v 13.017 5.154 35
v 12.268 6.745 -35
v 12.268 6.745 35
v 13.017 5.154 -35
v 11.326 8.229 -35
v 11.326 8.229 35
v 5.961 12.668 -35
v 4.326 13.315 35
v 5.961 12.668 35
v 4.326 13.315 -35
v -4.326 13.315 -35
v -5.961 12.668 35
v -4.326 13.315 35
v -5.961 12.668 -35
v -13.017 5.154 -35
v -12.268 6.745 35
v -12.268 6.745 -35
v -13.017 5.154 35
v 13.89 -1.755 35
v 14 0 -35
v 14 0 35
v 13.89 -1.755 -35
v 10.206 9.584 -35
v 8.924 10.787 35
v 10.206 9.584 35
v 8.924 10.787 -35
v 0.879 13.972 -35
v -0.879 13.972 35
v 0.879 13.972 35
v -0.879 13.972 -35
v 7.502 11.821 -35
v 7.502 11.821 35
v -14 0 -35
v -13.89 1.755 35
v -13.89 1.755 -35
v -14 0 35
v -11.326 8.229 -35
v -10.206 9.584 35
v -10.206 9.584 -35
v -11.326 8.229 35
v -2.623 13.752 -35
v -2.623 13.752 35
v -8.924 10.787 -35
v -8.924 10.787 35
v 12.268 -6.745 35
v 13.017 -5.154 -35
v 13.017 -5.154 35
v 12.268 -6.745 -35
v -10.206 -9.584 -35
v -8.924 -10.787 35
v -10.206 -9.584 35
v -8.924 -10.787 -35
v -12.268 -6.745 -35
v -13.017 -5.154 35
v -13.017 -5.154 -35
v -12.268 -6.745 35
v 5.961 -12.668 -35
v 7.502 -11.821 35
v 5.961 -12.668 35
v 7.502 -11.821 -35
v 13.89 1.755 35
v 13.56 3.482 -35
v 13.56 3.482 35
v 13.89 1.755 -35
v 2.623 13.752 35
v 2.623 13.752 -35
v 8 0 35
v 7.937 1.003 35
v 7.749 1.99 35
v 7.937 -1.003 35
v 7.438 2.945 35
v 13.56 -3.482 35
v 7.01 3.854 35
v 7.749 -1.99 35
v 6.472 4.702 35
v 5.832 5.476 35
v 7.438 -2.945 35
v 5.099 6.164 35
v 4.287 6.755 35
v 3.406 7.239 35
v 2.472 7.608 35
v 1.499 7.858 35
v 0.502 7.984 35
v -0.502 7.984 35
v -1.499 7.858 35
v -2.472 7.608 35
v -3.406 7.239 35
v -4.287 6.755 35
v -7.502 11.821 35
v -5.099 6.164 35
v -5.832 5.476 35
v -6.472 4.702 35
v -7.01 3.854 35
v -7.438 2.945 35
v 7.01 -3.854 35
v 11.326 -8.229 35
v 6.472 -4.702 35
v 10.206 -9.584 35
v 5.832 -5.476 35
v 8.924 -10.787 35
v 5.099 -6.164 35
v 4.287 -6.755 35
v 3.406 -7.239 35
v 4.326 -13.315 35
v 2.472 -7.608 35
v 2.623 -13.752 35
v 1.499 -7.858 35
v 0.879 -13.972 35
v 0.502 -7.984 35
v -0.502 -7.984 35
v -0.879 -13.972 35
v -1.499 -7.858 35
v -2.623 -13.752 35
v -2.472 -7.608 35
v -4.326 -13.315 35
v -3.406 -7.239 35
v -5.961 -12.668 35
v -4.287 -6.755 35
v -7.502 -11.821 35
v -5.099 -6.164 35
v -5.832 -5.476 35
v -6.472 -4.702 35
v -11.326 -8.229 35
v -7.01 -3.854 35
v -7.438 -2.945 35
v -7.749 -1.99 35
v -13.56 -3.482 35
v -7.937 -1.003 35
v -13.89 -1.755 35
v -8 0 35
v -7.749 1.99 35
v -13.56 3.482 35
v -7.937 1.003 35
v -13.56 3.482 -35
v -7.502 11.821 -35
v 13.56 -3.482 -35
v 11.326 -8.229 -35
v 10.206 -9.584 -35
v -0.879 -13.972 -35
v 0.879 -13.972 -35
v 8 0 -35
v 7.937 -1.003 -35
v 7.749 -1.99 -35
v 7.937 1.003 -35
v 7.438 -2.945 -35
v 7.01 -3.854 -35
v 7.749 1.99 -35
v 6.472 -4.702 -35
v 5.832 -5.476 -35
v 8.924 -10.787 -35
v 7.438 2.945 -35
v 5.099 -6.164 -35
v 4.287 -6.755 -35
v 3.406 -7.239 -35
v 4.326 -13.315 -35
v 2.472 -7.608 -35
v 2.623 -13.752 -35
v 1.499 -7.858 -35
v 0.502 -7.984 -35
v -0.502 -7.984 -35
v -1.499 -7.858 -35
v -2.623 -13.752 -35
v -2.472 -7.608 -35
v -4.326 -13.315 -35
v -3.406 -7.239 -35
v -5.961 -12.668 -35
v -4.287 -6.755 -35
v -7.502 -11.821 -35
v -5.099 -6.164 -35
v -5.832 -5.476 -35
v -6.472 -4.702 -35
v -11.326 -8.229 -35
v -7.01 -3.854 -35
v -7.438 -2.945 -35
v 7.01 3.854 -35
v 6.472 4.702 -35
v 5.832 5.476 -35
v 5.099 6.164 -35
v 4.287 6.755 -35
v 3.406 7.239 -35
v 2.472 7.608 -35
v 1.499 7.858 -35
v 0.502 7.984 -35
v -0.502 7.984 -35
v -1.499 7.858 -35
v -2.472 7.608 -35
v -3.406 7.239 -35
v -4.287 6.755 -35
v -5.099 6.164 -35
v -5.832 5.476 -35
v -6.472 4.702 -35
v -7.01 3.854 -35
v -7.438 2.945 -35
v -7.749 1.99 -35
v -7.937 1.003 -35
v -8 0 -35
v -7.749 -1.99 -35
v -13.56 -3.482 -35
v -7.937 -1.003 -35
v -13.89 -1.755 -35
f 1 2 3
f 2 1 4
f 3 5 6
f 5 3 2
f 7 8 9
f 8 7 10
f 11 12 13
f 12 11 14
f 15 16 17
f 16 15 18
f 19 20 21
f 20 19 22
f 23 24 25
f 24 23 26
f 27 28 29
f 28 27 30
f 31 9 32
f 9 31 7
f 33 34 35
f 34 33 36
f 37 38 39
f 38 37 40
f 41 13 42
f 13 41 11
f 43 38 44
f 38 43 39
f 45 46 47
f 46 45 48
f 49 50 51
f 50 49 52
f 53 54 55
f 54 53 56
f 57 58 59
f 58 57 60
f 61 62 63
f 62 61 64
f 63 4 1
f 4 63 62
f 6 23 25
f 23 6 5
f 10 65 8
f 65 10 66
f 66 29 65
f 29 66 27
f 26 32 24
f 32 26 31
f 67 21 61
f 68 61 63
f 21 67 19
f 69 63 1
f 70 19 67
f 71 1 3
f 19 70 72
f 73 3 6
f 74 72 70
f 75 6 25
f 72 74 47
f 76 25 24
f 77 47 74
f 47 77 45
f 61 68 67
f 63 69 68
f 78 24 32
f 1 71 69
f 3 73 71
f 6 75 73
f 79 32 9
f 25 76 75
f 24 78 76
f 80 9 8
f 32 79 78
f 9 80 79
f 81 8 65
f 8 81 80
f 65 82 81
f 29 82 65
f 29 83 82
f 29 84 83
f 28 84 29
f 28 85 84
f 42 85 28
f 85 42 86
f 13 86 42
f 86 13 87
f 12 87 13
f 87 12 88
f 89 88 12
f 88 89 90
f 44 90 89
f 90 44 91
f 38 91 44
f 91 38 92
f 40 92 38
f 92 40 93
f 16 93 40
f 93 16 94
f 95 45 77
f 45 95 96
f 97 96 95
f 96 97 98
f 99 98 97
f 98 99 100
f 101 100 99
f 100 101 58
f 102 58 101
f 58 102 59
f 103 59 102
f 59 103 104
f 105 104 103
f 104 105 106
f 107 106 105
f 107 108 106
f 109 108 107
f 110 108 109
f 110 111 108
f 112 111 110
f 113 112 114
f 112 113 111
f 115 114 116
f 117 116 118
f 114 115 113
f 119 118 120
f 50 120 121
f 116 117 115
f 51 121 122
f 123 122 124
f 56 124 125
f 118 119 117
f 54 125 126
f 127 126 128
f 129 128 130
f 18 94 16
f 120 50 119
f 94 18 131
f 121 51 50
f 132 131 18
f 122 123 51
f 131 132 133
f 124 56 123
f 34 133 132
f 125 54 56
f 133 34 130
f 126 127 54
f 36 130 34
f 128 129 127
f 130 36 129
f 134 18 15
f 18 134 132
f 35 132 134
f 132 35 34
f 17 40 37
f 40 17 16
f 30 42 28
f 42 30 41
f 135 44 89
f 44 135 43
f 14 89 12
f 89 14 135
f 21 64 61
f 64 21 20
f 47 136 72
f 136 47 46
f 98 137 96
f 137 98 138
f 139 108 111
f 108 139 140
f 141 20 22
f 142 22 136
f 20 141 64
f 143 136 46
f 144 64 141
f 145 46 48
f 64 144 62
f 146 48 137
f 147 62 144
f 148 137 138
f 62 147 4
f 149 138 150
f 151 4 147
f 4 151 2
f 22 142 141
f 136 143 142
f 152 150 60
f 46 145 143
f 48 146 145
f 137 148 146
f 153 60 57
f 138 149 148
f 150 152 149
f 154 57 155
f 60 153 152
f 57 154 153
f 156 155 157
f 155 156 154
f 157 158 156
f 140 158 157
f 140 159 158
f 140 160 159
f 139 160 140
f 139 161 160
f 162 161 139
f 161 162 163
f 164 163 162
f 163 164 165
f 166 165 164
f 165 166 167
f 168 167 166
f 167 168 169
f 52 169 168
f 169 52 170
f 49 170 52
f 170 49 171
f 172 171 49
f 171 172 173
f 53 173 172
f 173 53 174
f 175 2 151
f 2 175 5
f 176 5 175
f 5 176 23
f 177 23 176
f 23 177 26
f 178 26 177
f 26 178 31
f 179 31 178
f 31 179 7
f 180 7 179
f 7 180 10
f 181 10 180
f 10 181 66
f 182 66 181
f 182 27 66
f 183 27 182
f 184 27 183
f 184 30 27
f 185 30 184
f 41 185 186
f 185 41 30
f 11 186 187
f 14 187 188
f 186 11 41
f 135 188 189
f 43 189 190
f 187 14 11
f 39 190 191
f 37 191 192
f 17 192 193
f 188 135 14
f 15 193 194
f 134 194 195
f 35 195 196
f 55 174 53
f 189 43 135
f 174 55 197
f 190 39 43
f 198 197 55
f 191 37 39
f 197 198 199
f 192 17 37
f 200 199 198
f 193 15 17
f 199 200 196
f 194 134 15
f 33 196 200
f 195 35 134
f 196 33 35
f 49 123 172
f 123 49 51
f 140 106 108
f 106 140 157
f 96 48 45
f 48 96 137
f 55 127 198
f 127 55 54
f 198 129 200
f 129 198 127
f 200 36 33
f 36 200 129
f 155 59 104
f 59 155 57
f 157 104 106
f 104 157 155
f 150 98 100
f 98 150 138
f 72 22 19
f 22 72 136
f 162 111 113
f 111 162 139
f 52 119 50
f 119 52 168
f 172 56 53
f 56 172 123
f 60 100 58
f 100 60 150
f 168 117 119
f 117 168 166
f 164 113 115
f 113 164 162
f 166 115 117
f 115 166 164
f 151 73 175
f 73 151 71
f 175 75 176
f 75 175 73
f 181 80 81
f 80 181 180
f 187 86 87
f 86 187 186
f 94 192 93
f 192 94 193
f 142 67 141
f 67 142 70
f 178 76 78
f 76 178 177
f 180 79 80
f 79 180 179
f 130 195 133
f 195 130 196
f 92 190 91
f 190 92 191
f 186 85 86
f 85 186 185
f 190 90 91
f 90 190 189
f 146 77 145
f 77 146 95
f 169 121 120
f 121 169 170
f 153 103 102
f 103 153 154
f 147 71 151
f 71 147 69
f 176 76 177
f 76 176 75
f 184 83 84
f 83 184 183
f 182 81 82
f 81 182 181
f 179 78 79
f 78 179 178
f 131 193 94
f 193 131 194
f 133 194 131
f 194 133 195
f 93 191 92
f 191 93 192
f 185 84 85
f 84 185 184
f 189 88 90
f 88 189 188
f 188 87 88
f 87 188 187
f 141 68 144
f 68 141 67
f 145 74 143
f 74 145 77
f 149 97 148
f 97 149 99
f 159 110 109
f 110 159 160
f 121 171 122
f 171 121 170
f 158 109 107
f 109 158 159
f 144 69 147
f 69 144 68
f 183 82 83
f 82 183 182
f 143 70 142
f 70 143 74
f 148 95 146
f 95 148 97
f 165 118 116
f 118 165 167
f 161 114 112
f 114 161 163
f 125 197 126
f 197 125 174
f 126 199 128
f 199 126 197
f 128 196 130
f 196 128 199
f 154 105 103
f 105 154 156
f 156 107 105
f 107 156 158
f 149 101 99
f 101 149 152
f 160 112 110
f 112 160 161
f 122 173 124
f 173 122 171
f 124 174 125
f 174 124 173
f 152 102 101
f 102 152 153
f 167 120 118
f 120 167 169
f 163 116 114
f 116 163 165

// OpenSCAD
$fn = 50;


difference() {
	union() {
		translate(v = [0, 0, -35.0000000000]) {
			cylinder(h = 70, r = 14.0000000000);
		}
	}
	union() {
		translate(v = [0, 0, -100.0000000000]) {
			cylinder(h = 200, r = 8);
		}
	}
}
